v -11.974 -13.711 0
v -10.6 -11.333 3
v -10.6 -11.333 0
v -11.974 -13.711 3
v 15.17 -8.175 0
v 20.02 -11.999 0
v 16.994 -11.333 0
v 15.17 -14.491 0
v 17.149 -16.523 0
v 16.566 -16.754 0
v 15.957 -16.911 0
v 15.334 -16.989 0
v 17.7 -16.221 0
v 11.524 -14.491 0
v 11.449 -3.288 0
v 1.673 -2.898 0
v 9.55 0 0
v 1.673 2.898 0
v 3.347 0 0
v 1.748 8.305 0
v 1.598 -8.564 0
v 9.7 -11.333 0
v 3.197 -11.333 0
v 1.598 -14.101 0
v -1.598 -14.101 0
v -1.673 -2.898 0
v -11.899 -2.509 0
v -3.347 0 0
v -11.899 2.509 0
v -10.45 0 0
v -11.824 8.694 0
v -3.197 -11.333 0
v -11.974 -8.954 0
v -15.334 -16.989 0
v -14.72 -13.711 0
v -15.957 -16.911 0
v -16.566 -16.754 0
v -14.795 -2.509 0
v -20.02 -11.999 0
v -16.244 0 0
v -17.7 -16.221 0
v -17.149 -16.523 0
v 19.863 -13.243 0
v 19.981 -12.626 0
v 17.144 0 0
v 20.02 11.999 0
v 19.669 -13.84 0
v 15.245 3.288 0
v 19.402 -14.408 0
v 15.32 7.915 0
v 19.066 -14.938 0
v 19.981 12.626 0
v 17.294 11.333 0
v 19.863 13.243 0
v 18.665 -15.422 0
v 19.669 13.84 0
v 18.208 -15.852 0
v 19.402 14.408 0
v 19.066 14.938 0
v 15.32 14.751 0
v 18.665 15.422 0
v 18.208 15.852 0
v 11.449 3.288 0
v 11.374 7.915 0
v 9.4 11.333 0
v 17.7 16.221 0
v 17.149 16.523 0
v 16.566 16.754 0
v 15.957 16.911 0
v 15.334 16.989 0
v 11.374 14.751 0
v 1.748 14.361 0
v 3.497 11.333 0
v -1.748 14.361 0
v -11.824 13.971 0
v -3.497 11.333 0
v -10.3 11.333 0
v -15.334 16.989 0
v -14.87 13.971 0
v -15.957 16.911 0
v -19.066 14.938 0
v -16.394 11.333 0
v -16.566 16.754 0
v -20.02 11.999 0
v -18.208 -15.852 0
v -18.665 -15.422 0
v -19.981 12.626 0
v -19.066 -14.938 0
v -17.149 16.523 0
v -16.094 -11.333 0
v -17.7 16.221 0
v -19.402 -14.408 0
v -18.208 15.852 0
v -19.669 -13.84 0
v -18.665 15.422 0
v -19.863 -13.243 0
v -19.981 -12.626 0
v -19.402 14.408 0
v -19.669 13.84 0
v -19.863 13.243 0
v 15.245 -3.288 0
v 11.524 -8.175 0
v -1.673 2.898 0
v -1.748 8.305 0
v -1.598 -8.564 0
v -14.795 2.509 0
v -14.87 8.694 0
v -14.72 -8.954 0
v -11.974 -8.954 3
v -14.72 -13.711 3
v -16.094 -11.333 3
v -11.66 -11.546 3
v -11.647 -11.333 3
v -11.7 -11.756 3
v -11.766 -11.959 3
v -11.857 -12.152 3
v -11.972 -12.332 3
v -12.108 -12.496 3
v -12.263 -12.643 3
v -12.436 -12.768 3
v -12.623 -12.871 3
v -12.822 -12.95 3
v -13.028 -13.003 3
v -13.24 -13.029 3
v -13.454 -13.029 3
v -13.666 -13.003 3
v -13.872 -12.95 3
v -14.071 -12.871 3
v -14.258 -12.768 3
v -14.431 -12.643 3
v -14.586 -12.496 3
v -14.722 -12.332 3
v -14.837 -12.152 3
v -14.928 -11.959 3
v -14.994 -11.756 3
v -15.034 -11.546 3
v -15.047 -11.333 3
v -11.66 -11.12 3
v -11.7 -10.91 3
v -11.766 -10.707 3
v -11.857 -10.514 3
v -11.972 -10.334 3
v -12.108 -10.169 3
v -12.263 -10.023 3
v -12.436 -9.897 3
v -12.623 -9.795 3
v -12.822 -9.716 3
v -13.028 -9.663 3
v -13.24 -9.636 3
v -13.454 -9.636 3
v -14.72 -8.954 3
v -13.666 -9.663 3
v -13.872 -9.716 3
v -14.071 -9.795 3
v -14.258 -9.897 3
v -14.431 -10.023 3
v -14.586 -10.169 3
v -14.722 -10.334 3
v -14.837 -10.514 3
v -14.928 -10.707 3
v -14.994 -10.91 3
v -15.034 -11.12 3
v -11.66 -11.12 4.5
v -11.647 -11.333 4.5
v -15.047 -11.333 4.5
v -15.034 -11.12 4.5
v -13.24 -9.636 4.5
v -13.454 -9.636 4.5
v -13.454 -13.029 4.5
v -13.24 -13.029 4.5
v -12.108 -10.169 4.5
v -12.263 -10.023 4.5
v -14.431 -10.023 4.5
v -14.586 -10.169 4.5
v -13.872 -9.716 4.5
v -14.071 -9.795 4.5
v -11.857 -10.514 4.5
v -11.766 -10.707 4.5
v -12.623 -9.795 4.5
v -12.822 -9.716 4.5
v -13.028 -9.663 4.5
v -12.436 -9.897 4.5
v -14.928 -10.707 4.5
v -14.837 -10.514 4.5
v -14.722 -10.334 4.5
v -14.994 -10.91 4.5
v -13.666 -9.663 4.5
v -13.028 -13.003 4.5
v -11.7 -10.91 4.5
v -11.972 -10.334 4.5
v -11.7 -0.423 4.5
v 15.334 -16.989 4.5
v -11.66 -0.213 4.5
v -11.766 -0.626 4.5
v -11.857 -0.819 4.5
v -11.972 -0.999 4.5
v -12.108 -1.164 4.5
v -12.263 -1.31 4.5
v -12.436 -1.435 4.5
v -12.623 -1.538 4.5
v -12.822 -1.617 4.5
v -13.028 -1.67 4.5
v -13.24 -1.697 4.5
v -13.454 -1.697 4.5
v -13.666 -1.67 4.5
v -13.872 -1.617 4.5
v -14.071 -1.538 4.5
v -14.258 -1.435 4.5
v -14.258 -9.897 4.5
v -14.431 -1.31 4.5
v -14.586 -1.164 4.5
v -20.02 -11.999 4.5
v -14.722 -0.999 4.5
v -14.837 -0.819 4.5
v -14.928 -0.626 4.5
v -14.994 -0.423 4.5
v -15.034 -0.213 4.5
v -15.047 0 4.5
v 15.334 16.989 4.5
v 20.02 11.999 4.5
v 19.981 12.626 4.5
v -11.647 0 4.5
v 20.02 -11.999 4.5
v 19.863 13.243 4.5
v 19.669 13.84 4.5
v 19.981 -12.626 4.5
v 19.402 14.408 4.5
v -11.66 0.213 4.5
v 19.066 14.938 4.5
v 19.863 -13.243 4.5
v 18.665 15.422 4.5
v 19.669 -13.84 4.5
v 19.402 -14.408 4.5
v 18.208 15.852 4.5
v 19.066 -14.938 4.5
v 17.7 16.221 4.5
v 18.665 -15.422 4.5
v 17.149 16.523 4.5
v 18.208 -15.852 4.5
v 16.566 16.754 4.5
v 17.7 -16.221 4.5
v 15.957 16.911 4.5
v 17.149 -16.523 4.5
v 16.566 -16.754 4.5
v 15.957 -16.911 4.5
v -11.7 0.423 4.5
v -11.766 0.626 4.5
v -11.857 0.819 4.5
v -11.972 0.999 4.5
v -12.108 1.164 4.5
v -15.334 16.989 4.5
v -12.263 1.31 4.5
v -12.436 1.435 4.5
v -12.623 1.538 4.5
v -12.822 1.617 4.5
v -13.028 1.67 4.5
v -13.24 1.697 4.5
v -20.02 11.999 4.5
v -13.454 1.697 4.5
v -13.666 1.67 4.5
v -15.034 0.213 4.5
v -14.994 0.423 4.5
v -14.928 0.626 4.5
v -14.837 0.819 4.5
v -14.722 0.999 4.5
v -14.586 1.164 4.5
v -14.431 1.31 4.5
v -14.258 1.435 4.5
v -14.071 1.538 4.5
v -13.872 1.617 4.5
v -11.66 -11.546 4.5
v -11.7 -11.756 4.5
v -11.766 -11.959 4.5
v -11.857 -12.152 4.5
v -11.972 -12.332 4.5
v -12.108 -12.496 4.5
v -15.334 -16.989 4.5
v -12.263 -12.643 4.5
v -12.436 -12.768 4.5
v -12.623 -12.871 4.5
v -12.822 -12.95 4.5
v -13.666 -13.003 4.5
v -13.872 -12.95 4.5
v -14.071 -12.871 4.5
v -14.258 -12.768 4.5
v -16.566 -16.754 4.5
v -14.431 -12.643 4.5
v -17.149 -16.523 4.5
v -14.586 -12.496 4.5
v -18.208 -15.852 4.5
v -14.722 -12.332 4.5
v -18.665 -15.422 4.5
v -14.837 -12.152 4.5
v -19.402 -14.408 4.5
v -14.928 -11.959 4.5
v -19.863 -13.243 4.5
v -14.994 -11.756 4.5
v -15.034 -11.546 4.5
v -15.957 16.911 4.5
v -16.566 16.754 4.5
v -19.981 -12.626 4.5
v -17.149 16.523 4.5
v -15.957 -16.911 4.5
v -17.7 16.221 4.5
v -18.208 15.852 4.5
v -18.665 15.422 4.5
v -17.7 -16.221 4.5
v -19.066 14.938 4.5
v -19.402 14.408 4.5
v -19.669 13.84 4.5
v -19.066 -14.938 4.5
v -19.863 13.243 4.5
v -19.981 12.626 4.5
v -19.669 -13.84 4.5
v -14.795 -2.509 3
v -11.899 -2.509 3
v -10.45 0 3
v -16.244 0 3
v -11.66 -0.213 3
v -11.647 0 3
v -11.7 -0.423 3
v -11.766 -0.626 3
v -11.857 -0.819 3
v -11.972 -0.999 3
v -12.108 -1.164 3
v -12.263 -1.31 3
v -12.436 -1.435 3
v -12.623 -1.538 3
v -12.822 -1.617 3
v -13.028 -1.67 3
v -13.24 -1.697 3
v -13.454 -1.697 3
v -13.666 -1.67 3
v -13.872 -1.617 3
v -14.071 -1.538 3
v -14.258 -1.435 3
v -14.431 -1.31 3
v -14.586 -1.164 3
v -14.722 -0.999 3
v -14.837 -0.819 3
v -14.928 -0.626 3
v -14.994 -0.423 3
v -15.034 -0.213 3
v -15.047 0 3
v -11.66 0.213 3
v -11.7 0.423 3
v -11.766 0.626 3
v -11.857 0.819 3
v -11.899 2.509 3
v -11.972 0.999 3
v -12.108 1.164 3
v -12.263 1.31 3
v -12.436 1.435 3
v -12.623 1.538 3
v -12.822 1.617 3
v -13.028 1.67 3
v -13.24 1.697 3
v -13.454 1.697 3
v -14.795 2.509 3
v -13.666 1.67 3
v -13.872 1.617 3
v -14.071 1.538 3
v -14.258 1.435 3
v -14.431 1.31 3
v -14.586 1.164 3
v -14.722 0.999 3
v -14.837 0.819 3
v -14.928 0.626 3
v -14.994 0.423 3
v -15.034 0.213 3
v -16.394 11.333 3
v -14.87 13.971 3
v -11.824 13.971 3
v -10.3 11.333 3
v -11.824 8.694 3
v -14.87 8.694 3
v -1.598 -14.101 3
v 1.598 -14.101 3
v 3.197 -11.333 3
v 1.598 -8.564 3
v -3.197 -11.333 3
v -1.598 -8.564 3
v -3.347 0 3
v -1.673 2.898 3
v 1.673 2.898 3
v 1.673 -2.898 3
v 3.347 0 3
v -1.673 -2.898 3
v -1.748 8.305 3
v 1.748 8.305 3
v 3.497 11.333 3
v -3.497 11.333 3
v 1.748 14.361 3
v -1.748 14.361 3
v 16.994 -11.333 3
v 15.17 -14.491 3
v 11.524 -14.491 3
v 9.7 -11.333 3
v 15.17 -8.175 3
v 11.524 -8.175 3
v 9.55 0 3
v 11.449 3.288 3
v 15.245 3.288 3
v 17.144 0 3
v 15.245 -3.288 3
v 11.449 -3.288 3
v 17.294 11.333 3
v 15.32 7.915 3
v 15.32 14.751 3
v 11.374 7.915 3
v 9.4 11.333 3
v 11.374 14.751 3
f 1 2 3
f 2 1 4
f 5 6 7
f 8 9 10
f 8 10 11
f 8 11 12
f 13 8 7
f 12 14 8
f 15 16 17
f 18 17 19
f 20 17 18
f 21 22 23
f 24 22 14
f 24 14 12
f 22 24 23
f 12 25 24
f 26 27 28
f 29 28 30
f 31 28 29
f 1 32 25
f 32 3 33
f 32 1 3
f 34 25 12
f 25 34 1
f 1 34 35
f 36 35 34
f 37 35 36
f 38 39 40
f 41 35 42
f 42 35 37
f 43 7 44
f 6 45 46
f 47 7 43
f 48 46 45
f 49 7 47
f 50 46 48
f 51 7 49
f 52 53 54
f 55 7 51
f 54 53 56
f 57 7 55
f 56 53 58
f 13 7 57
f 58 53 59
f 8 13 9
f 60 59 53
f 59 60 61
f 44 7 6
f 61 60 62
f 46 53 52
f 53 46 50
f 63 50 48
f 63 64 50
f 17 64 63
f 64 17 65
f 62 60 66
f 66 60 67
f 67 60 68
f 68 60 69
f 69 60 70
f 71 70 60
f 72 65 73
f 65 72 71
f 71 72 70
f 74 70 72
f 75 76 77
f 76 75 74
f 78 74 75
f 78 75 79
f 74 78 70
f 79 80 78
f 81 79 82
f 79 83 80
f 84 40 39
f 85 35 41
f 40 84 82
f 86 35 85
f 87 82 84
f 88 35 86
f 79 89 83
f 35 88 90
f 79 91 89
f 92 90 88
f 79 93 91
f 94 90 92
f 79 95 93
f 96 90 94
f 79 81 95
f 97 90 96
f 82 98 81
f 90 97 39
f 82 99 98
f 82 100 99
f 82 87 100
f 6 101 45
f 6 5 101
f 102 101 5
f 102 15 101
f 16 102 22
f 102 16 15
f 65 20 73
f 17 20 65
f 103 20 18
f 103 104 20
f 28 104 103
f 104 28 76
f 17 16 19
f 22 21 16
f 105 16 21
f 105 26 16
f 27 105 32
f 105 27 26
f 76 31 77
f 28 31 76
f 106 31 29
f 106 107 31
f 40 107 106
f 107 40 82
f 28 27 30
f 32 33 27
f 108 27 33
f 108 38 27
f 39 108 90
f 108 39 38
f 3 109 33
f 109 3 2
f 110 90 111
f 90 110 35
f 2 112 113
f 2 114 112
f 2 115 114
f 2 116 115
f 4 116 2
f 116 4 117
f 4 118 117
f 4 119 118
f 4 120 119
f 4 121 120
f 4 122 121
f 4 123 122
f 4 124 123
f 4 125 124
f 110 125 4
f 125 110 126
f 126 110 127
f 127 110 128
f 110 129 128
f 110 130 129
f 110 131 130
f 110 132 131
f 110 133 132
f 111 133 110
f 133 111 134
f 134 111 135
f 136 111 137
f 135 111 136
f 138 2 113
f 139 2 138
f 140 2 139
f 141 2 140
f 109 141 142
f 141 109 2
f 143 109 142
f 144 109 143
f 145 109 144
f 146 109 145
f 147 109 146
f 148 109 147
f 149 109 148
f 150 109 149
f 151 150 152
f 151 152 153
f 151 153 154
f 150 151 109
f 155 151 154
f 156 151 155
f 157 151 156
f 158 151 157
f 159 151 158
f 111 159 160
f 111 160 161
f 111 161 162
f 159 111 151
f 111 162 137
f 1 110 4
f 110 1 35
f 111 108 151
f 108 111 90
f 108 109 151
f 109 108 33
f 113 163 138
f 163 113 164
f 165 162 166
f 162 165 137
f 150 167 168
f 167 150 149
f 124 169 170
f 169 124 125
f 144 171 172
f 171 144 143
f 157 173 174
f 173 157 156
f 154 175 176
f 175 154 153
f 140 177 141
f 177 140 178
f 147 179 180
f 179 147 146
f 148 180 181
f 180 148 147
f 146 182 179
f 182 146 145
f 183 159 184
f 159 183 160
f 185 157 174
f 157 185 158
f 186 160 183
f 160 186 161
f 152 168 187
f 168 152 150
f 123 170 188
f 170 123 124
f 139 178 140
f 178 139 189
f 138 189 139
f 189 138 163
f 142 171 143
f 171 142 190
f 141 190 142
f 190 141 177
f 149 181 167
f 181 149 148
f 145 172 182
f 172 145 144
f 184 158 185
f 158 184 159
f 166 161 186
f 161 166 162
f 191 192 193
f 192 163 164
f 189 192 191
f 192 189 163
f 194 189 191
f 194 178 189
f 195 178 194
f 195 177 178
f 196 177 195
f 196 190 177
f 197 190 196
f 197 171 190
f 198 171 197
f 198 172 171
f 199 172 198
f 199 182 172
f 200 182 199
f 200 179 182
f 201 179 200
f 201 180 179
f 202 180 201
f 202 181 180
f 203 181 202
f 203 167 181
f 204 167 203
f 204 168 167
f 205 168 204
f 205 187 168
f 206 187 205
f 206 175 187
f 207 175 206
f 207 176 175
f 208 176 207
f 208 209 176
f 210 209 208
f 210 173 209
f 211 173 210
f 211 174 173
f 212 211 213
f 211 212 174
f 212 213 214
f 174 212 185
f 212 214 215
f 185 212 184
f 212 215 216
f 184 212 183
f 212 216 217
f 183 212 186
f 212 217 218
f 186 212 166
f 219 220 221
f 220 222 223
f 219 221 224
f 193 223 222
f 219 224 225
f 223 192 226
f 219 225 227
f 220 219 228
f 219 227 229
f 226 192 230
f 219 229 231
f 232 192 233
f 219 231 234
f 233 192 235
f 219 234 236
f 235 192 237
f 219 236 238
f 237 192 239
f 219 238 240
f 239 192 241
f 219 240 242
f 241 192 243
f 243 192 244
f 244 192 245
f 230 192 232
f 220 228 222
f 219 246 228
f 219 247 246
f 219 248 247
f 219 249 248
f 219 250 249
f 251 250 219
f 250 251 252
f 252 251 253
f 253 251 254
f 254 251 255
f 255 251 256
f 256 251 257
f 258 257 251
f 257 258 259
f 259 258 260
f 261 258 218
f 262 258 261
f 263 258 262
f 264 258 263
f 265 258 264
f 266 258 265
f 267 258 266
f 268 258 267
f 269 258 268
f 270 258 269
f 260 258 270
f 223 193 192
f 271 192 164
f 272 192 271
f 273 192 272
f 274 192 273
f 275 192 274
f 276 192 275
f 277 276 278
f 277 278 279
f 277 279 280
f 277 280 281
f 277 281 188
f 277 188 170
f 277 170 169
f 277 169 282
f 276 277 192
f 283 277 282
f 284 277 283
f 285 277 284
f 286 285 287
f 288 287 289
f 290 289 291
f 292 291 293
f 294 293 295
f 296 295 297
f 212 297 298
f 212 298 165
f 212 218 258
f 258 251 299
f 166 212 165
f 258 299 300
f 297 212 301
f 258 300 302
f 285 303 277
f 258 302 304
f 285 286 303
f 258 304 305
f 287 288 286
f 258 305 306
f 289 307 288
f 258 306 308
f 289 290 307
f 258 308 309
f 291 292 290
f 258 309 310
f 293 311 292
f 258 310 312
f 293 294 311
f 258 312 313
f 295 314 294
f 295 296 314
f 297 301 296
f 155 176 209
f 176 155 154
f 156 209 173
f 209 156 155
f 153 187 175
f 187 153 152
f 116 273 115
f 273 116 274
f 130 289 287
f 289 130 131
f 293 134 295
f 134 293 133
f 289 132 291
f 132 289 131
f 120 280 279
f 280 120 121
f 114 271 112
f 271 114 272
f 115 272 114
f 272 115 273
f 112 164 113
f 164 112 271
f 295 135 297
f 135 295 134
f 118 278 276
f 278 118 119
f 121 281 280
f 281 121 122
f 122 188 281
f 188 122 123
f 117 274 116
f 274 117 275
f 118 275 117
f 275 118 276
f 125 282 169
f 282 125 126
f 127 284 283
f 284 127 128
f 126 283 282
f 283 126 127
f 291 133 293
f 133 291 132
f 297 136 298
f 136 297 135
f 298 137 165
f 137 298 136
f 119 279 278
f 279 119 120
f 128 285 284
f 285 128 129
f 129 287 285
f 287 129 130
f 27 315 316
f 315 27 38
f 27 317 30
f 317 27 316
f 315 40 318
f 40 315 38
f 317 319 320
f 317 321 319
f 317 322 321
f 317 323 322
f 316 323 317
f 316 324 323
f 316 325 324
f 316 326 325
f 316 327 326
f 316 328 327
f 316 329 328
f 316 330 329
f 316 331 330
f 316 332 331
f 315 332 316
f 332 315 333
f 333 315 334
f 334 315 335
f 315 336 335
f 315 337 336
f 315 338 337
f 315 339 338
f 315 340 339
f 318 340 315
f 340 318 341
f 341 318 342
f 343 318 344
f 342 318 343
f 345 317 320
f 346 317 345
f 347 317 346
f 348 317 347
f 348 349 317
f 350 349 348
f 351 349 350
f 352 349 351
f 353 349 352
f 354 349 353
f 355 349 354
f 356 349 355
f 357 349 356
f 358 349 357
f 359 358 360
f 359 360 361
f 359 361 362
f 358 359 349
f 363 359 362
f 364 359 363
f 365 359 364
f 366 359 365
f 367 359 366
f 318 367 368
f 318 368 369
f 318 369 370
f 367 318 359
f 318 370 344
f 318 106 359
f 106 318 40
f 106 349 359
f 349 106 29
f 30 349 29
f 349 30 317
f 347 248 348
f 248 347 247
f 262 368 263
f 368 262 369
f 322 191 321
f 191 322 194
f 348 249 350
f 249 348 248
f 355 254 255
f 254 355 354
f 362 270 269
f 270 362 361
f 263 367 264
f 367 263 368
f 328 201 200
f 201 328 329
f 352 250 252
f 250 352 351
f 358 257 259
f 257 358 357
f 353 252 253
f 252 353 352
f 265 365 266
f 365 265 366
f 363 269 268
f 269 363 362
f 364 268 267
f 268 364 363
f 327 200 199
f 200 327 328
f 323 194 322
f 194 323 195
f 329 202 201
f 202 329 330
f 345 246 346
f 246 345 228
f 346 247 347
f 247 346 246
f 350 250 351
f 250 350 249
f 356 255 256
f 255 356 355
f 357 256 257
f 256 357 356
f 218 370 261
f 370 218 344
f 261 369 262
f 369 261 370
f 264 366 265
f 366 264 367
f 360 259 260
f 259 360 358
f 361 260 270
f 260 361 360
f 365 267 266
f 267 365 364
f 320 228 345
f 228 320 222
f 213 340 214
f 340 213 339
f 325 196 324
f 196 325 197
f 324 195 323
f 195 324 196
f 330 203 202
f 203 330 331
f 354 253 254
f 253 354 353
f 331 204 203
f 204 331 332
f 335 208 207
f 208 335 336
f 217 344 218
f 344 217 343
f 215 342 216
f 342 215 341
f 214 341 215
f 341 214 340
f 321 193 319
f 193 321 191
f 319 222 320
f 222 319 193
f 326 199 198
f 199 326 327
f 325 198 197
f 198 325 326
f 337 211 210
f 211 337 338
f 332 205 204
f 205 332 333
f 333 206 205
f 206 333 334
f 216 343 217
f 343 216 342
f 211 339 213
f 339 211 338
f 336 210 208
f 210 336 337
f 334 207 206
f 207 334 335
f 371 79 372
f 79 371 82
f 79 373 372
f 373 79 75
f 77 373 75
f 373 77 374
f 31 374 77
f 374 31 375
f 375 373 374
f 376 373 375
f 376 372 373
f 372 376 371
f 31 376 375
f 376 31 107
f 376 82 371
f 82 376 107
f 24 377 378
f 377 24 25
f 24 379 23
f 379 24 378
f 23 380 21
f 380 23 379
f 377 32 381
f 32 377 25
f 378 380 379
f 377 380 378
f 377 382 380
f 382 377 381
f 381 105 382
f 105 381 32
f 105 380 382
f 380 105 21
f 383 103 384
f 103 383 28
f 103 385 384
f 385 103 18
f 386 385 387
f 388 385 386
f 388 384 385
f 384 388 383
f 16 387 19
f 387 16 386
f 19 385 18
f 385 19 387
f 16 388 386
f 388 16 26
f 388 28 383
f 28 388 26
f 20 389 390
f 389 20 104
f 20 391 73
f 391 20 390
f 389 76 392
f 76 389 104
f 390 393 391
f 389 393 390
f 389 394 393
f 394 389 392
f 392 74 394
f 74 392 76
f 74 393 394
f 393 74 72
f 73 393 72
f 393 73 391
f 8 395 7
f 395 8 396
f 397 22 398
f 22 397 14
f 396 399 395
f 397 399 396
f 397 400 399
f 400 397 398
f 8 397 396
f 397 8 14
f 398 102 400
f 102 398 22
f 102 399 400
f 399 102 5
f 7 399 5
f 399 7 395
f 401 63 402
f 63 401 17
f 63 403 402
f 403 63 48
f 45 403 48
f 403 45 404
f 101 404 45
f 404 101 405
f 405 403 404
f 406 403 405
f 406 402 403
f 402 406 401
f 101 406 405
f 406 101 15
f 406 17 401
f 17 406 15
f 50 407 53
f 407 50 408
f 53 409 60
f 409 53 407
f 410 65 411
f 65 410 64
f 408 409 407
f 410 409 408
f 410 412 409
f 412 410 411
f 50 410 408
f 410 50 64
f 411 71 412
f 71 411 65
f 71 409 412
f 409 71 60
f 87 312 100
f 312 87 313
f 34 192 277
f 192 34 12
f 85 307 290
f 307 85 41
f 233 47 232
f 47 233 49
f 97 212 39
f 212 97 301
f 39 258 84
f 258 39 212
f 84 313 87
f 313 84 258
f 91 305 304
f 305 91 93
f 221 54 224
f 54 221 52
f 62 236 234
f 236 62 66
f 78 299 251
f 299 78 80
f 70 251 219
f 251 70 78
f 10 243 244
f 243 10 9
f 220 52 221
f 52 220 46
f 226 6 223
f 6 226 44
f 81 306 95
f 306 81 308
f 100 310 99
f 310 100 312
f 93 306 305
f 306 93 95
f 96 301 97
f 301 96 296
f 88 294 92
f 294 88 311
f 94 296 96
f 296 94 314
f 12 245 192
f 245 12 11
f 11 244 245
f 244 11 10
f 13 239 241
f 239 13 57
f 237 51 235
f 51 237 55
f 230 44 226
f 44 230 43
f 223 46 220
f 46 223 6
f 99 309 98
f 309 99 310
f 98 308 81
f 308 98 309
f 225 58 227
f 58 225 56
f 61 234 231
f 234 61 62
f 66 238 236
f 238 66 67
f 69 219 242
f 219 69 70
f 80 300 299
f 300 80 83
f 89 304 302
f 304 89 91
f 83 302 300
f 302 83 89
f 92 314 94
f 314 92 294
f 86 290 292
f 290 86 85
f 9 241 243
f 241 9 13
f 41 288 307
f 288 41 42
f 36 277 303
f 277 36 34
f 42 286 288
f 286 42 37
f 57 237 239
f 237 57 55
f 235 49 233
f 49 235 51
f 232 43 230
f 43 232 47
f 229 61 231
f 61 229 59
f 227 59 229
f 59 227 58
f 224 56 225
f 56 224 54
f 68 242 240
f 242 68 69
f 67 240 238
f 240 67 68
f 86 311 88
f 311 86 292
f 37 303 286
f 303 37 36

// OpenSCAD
$fn = 50;


difference() {
	union() {
		translate(v = [0, 0, 0]) {
			rotate(a = [0, 0, 0]) {
				hull() {
					translate(v = [-15.0205000000, 11.9991334489, 0]) {
						rotate(a = [0, 0, 0]) {
							translate(v = [0, 0, 0]) {
								rotate(a = [0, 0, 0]) {
									cylinder(h = 4.5000000000, r = 5);
								}
							}
						}
					}
					translate(v = [15.0205000000, 11.9991334489, 0]) {
						rotate(a = [0, 0, 0]) {
							translate(v = [0, 0, 0]) {
								rotate(a = [0, 0, 0]) {
									cylinder(h = 4.5000000000, r = 5);
								}
							}
						}
					}
					translate(v = [-15.0205000000, -11.9991334489, 0]) {
						rotate(a = [0, 0, 0]) {
							translate(v = [0, 0, 0]) {
								rotate(a = [0, 0, 0]) {
									cylinder(h = 4.5000000000, r = 5);
								}
							}
						}
					}
					translate(v = [15.0205000000, -11.9991334489, 0]) {
						rotate(a = [0, 0, 0]) {
							translate(v = [0, 0, 0]) {
								rotate(a = [0, 0, 0]) {
									cylinder(h = 4.5000000000, r = 5);
								}
							}
						}
					}
				}
			}
		}
	}
	union() {
		translate(v = [-13.3470000000, -11.3327556326, 0]) {
			rotate(a = [0, 0, 0]) {
				#translate(v = [0, 0, 0]) {
					rotate(a = [0, 0, 0]) {
						linear_extrude(height = 3) {
							polygon(points = [[2.7466000000, 0.0000000000], [1.3733000000, 2.3786253740], [-1.3733000000, 2.3786253740], [-2.7466000000, 0.0000000000], [-1.3733000000, -2.3786253740], [1.3733000000, -2.3786253740]]);
						}
					}
				}
			}
		}
		translate(v = [-13.3470000000, -11.3327556326, 0]) {
			rotate(a = [0, 0, 0]) {
				cylinder(h = 4.5000000000, r = 1.7000000000);
			}
		}
		translate(v = [-13.3470000000, -0.0000000000, 0]) {
			rotate(a = [0, 0, 0]) {
				#translate(v = [0, 0, 0]) {
					rotate(a = [0, 0, 0]) {
						linear_extrude(height = 3) {
							polygon(points = [[2.8966000000, 0.0000000000], [1.4483000000, 2.5085291846], [-1.4483000000, 2.5085291846], [-2.8966000000, 0.0000000000], [-1.4483000000, -2.5085291846], [1.4483000000, -2.5085291846]]);
						}
					}
				}
			}
		}
		translate(v = [-13.3470000000, -0.0000000000, 0]) {
			rotate(a = [0, 0, 0]) {
				cylinder(h = 4.5000000000, r = 1.7000000000);
			}
		}
		translate(v = [-13.3470000000, 11.3327556326, 0]) {
			rotate(a = [0, 0, 0]) {
				#translate(v = [0, 0, 0]) {
					rotate(a = [0, 0, 0]) {
						linear_extrude(height = 3) {
							polygon(points = [[3.0466000000, 0.0000000000], [1.5233000000, 2.6384329952], [-1.5233000000, 2.6384329952], [-3.0466000000, 0.0000000000], [-1.5233000000, -2.6384329952], [1.5233000000, -2.6384329952]]);
						}
					}
				}
			}
		}
		translate(v = [0.0000000000, -11.3327556326, 0]) {
			rotate(a = [0, 0, 0]) {
				#translate(v = [0, 0, 0]) {
					rotate(a = [0, 0, 0]) {
						linear_extrude(height = 3) {
							polygon(points = [[3.1966000000, 0.0000000000], [1.5983000000, 2.7683368057], [-1.5983000000, 2.7683368057], [-3.1966000000, 0.0000000000], [-1.5983000000, -2.7683368057], [1.5983000000, -2.7683368057]]);
						}
					}
				}
			}
		}
		translate(v = [0.0000000000, -0.0000000000, 0]) {
			rotate(a = [0, 0, 0]) {
				#translate(v = [0, 0, 0]) {
					rotate(a = [0, 0, 0]) {
						linear_extrude(height = 3) {
							polygon(points = [[3.3466000000, 0.0000000000], [1.6733000000, 2.8982406163], [-1.6733000000, 2.8982406163], [-3.3466000000, 0.0000000000], [-1.6733000000, -2.8982406163], [1.6733000000, -2.8982406163]]);
						}
					}
				}
			}
		}
		translate(v = [0.0000000000, 11.3327556326, 0]) {
			rotate(a = [0, 0, 0]) {
				#translate(v = [0, 0, 0]) {
					rotate(a = [0, 0, 0]) {
						linear_extrude(height = 3) {
							polygon(points = [[3.4966000000, 0.0000000000], [1.7483000000, 3.0281444269], [-1.7483000000, 3.0281444269], [-3.4966000000, 0.0000000000], [-1.7483000000, -3.0281444269], [1.7483000000, -3.0281444269]]);
						}
					}
				}
			}
		}
		translate(v = [13.3470000000, -11.3327556326, 0]) {
			rotate(a = [0, 0, 0]) {
				#translate(v = [0, 0, 0]) {
					rotate(a = [0, 0, 0]) {
						linear_extrude(height = 3) {
							polygon(points = [[3.6466000000, 0.0000000000], [1.8233000000, 3.1580482374], [-1.8233000000, 3.1580482374], [-3.6466000000, 0.0000000000], [-1.8233000000, -3.1580482374], [1.8233000000, -3.1580482374]]);
						}
					}
				}
			}
		}
		translate(v = [13.3470000000, -0.0000000000, 0]) {
			rotate(a = [0, 0, 0]) {
				#translate(v = [0, 0, 0]) {
					rotate(a = [0, 0, 0]) {
						linear_extrude(height = 3) {
							polygon(points = [[3.7966000000, 0.0000000000], [1.8983000000, 3.2879520480], [-1.8983000000, 3.2879520480], [-3.7966000000, 0.0000000000], [-1.8983000000, -3.2879520480], [1.8983000000, -3.2879520480]]);
						}
					}
				}
			}
		}
		translate(v = [13.3470000000, 11.3327556326, 0]) {
			rotate(a = [0, 0, 0]) {
				#translate(v = [0, 0, 0]) {
					rotate(a = [0, 0, 0]) {
						linear_extrude(height = 3) {
							polygon(points = [[3.9466000000, 0.0000000000], [1.9733000000, 3.4178558586], [-1.9733000000, 3.4178558586], [-3.9466000000, 0.0000000000], [-1.9733000000, -3.4178558586], [1.9733000000, -3.4178558586]]);
						}
					}
				}
			}
		}
	}
}
